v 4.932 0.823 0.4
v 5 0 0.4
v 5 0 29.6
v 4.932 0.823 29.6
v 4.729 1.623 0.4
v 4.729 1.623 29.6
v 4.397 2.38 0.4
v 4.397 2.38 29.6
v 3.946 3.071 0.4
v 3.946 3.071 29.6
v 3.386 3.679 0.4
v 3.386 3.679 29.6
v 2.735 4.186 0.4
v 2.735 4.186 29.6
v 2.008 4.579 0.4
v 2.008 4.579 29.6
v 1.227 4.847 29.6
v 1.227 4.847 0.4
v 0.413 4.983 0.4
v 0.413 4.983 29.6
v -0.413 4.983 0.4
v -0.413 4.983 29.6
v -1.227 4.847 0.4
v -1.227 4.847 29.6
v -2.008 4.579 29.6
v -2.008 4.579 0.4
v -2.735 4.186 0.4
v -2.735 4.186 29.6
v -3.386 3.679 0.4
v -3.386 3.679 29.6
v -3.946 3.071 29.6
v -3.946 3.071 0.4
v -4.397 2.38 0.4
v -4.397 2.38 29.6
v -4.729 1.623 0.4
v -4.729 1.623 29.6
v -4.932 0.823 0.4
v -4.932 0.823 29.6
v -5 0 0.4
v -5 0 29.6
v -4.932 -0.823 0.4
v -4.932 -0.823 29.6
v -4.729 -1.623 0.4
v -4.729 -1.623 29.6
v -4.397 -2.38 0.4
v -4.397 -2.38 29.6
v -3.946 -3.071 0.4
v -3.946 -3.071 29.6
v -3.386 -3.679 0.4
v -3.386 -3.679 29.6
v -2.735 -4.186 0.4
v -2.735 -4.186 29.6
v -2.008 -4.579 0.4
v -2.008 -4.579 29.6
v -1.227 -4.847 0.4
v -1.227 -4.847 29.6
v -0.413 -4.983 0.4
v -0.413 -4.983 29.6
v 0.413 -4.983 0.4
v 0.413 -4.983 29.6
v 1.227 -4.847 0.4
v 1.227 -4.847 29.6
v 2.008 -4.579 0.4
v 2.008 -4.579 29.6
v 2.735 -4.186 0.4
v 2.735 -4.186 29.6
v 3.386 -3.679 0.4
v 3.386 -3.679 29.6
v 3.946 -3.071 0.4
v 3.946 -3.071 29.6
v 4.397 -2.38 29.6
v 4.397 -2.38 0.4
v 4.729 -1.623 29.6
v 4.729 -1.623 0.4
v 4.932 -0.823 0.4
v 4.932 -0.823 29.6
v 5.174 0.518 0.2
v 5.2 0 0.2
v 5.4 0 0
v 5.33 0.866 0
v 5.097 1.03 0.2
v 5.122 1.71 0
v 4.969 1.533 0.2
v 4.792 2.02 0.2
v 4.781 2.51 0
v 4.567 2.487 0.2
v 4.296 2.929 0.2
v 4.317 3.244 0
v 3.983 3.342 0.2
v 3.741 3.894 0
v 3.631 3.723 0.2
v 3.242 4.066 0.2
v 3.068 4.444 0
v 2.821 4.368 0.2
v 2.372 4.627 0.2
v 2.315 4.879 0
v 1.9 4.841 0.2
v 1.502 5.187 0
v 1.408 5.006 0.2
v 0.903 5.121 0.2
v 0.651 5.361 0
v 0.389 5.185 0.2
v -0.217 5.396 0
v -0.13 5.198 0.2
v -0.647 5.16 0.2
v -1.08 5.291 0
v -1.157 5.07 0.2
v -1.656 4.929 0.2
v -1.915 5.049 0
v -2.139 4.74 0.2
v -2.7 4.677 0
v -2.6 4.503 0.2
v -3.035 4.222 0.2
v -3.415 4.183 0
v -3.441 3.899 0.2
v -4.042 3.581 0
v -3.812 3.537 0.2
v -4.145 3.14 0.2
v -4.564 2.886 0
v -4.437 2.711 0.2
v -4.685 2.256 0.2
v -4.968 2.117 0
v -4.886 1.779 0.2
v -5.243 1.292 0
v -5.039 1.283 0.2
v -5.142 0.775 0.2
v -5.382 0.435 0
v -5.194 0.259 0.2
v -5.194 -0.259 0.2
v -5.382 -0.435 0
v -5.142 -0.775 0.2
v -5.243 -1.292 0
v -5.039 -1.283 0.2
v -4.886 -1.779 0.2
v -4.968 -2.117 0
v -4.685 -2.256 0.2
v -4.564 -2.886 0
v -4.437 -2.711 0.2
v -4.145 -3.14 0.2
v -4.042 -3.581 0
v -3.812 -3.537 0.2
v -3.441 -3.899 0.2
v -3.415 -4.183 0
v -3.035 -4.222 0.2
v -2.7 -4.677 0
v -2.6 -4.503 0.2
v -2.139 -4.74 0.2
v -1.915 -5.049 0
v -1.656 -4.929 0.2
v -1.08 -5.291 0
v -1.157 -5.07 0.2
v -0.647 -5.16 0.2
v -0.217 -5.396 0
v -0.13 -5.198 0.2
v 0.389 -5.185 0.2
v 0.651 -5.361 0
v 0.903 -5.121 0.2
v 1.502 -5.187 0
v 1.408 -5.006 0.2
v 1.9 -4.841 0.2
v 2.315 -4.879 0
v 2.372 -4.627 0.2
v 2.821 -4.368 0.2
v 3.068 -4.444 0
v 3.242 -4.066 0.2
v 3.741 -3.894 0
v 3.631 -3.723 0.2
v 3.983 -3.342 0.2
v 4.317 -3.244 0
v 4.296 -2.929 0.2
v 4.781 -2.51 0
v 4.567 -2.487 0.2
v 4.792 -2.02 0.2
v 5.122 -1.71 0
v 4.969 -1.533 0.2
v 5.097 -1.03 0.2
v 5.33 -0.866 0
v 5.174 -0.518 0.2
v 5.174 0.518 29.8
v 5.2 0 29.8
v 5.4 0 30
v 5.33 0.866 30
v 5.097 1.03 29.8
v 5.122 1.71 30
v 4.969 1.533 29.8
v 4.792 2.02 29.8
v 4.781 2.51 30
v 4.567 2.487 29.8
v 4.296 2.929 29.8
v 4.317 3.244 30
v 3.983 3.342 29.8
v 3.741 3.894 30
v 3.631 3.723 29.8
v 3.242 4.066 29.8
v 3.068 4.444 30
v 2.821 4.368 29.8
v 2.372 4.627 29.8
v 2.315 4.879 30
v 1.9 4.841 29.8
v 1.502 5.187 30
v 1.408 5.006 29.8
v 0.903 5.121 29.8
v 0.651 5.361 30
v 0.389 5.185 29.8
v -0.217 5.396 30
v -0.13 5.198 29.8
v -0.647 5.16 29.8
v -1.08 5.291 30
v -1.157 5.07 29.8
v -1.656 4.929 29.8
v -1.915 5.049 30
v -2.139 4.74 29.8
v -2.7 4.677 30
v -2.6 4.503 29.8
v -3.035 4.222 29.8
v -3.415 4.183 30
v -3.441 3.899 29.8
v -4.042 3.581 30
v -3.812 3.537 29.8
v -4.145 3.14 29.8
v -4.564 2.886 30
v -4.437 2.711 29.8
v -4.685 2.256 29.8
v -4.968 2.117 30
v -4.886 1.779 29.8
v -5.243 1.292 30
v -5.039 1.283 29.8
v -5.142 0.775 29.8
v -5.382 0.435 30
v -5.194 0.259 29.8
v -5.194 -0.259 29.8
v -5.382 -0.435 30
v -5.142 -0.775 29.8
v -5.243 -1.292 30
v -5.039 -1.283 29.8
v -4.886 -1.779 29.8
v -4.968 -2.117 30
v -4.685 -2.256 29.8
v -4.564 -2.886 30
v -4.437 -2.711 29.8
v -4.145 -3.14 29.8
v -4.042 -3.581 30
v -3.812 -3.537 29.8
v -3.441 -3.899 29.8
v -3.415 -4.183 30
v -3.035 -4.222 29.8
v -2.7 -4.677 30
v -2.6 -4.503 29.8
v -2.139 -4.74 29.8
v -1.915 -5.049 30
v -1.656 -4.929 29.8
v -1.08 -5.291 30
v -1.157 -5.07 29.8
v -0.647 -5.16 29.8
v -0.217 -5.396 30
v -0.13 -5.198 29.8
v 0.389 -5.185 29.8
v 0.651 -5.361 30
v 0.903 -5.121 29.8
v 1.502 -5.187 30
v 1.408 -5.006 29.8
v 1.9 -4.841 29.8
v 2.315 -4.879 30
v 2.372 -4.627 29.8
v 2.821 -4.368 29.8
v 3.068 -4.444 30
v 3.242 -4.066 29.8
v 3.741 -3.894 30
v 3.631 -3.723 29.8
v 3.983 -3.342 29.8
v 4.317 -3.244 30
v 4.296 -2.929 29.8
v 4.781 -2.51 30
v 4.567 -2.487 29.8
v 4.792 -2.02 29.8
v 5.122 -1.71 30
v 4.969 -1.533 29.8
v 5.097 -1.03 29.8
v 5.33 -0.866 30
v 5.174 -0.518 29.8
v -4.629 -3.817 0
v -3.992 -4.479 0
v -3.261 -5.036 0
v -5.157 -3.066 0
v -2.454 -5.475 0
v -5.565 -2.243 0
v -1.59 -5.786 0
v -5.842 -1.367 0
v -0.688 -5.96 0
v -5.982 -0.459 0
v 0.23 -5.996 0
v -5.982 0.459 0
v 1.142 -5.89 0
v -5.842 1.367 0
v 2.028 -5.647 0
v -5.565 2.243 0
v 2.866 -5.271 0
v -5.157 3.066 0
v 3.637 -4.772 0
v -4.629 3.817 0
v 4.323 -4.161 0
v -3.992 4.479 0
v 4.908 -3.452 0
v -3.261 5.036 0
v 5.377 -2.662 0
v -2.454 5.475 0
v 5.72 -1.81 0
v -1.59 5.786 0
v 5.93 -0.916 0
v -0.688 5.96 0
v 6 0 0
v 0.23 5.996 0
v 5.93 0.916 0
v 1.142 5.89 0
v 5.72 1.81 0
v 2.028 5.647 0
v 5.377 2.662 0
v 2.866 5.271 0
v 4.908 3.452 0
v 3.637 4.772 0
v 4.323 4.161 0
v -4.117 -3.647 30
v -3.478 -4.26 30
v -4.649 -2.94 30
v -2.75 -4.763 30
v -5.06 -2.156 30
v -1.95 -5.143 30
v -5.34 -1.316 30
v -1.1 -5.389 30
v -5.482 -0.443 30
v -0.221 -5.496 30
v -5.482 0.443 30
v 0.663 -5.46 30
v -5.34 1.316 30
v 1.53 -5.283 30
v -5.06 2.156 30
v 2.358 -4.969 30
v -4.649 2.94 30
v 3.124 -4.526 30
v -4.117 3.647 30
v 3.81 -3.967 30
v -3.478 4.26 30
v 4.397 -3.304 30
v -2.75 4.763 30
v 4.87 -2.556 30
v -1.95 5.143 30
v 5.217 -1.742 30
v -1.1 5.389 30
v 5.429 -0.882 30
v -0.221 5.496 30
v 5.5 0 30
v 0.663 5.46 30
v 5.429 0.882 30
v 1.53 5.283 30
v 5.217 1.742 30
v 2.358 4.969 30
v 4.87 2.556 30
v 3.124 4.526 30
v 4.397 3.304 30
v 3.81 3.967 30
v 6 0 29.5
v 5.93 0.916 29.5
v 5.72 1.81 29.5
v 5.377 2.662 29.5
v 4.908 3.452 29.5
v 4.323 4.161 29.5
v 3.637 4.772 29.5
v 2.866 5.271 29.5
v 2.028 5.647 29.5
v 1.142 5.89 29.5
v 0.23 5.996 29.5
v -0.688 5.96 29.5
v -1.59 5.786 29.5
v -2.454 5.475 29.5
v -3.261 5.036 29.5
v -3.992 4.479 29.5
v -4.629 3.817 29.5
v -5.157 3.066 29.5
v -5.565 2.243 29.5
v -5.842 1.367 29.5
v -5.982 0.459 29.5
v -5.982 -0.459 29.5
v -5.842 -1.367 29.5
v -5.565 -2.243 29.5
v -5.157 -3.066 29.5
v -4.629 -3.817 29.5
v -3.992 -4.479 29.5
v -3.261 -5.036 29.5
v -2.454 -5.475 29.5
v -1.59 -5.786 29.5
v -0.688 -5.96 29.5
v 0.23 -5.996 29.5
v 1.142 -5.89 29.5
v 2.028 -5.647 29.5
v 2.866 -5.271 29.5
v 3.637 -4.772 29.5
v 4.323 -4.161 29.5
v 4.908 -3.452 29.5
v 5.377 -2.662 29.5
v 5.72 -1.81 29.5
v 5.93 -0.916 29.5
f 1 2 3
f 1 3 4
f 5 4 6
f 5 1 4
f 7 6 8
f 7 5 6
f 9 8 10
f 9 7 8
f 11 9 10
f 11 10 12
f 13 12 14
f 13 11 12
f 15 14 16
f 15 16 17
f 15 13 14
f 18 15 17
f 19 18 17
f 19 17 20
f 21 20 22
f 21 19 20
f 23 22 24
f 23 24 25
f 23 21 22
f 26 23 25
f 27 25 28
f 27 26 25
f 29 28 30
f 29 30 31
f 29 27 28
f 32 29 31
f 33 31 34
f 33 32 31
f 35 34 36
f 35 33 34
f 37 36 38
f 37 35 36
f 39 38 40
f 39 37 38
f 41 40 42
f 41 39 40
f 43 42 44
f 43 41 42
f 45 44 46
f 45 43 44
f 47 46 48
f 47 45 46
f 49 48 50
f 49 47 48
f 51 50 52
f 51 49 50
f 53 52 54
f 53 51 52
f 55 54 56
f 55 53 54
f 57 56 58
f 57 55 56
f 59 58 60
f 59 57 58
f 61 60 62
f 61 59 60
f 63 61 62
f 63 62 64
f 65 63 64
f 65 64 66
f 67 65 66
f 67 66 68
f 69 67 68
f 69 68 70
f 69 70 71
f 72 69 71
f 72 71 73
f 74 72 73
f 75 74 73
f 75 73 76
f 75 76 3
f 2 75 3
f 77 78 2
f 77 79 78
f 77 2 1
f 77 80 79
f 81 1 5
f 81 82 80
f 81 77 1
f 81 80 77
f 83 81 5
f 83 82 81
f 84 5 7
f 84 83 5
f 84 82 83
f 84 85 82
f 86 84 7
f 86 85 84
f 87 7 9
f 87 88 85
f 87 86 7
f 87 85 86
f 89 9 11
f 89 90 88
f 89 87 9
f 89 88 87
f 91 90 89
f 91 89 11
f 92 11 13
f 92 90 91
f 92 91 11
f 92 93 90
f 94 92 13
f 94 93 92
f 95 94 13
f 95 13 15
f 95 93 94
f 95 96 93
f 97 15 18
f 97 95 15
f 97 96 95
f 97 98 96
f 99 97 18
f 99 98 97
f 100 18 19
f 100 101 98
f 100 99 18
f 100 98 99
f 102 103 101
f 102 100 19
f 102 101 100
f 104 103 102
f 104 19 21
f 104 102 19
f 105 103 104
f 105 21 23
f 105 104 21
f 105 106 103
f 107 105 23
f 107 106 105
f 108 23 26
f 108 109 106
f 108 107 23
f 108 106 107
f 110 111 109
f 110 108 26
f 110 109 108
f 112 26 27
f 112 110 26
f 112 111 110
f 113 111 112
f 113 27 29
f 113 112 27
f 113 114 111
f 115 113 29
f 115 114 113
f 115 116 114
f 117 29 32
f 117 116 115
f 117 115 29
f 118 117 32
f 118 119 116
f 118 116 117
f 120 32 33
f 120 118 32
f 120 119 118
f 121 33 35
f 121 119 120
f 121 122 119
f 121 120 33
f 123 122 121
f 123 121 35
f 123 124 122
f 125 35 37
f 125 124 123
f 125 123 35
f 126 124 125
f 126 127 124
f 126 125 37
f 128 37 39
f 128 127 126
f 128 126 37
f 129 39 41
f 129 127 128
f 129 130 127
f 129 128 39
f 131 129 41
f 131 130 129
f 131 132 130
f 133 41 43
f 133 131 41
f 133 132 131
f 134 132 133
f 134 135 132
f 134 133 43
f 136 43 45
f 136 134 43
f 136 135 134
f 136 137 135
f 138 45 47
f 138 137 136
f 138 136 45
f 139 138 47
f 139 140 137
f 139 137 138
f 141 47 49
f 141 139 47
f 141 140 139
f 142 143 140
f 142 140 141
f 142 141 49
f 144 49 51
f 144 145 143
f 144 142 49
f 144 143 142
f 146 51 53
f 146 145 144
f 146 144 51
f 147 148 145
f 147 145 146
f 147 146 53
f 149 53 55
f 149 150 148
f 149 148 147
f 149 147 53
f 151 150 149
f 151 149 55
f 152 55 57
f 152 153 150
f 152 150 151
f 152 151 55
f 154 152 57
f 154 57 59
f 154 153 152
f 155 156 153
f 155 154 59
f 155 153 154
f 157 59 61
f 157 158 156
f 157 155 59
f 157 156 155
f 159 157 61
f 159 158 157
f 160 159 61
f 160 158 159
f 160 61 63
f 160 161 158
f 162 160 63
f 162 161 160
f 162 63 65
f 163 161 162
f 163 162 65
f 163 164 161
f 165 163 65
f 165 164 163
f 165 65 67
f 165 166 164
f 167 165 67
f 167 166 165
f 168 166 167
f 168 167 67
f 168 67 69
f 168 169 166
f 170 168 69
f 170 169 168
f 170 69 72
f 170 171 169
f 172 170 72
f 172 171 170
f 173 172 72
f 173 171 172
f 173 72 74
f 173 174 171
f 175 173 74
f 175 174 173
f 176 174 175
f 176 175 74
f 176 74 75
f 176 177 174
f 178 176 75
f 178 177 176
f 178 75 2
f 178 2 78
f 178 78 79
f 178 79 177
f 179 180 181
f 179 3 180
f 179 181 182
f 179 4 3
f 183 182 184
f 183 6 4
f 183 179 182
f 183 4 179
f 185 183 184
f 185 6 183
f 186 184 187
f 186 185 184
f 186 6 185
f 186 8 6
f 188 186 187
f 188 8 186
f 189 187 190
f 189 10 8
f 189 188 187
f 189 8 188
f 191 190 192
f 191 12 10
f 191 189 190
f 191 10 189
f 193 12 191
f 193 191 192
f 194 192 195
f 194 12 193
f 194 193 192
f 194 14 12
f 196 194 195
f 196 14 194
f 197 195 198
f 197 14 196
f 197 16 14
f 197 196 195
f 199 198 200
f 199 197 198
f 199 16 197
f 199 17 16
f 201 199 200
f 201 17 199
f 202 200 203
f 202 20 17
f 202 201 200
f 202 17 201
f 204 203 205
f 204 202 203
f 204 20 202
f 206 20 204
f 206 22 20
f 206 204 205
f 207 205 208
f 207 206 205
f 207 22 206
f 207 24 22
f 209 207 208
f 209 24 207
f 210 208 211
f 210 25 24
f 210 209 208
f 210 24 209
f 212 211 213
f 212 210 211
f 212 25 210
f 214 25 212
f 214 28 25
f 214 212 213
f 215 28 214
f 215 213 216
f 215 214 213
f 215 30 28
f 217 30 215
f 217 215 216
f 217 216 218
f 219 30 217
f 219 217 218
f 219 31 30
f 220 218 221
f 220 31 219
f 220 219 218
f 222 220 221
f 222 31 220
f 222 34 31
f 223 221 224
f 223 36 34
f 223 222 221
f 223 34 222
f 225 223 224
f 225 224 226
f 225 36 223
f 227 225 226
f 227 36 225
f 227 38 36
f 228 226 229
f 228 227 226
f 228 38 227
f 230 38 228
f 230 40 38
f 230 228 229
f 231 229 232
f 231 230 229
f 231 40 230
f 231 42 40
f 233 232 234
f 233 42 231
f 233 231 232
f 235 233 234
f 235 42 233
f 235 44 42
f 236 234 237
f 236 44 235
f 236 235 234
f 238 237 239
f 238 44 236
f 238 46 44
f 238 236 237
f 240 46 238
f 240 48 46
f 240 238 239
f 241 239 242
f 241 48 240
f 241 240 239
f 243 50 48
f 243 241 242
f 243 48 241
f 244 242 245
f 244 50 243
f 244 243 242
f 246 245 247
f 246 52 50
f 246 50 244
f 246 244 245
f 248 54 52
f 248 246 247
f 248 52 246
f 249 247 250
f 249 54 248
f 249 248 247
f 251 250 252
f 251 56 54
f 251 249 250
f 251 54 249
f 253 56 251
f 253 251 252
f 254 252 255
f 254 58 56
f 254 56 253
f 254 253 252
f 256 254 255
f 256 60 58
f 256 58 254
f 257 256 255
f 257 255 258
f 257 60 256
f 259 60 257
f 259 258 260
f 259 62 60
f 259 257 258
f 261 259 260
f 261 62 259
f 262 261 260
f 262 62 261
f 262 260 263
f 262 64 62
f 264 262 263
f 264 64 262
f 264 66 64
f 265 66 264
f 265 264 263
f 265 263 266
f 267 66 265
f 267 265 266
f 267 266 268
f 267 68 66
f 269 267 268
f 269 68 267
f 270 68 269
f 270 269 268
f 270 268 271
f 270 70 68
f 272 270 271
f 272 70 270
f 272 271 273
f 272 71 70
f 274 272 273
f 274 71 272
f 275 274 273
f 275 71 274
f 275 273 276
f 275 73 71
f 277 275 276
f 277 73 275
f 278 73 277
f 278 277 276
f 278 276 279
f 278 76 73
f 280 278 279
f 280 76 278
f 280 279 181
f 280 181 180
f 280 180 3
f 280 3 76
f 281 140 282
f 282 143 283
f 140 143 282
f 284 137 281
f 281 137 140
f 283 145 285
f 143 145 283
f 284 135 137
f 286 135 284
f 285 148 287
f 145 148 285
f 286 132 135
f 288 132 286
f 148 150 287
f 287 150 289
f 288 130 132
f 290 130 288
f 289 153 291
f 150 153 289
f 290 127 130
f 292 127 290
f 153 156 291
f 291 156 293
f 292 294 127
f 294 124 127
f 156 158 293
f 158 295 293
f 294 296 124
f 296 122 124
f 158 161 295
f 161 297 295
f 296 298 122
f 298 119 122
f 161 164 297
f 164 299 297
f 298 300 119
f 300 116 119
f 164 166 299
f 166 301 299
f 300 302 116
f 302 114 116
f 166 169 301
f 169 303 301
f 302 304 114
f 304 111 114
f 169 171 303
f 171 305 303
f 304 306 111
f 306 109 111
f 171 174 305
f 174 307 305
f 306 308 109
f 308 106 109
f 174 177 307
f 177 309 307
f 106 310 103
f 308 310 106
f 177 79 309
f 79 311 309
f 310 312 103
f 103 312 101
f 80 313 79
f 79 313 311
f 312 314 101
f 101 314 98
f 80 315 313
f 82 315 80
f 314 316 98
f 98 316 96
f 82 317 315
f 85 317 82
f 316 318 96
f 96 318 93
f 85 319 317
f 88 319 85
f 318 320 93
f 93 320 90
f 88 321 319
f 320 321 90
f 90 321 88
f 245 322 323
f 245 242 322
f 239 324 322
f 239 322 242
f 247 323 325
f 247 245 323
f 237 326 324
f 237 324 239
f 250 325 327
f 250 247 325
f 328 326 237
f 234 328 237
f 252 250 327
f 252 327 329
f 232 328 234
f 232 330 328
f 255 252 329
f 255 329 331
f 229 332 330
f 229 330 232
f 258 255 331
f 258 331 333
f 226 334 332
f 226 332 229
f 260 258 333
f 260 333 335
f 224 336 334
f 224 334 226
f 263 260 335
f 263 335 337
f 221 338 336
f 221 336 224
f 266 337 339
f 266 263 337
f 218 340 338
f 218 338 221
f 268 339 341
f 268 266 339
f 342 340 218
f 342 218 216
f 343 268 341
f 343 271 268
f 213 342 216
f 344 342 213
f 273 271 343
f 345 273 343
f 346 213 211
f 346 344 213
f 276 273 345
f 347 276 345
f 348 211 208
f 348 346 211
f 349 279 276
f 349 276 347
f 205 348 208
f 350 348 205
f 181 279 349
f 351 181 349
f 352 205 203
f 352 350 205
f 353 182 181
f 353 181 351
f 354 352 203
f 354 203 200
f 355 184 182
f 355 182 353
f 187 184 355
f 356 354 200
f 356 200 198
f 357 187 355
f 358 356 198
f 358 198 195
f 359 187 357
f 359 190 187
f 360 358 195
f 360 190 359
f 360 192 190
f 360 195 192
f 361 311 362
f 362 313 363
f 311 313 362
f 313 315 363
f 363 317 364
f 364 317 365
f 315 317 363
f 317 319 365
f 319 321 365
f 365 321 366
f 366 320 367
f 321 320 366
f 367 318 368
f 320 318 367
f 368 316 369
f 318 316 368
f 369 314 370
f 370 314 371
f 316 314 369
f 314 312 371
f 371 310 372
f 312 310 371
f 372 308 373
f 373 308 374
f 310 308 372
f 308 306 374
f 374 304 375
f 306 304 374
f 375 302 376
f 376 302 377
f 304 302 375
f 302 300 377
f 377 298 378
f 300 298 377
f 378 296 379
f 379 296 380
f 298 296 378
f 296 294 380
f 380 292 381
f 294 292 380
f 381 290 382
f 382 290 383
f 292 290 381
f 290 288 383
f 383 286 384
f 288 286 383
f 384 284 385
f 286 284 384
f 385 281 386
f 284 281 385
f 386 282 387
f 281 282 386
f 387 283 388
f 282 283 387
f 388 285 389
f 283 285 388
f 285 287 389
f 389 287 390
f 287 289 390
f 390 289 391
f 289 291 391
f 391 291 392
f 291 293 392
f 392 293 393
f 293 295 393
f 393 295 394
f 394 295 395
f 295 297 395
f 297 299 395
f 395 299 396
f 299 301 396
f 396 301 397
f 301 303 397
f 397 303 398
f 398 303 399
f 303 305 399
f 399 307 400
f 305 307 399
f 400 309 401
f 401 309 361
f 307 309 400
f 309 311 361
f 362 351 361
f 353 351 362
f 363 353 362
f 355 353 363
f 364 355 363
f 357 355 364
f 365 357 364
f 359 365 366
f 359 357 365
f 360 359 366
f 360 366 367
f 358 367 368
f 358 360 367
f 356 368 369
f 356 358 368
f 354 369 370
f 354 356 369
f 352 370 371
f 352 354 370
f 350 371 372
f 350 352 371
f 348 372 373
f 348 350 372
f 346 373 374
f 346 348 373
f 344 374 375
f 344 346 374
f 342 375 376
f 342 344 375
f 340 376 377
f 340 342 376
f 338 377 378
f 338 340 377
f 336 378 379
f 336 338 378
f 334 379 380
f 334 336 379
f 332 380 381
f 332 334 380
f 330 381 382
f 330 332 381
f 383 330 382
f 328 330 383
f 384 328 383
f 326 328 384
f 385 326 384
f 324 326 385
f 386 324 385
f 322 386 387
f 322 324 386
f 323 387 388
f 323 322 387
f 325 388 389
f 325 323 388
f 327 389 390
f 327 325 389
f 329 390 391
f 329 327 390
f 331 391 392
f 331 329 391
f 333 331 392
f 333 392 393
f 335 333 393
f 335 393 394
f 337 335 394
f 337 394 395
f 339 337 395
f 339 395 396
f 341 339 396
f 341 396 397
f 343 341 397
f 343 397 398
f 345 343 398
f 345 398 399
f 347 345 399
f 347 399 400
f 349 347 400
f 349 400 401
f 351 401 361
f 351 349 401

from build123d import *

# Parameters (mm, degrees)
SKETCH_R        = 6
SKETCH_R_2      = 5
PAD_DEPTH       = 30
CHAMFER_SIZE    = 0.5
CHAMFER001_SIZE = 0.4
CHAMFER002_SIZE = 0.4


with BuildPart() as part:
    # Sketch → Pad (new body)
    with BuildSketch(Plane.XY):
        Circle(SKETCH_R)
        Circle(SKETCH_R_2, mode=Mode.SUBTRACT)
    extrude(amount=PAD_DEPTH)

    # Chamfer
    chamfer_edges = [part.edges().sort_by_distance(p)[0] for p in [
        (-6, 0, 30),
    ]]
    chamfer(chamfer_edges, length=CHAMFER_SIZE)

    # Chamfer001
    chamfer001_edges = [part.edges().sort_by_distance(p)[0] for p in [
        (-5, 0, 30),
    ]]
    chamfer(chamfer001_edges, length=CHAMFER001_SIZE)

    # Chamfer002
    chamfer002_edges = [part.edges().sort_by_distance(p)[0] for p in [
        (-5, 0, 0),
    ]]
    chamfer(chamfer002_edges, length=CHAMFER002_SIZE)


solid = part.part
